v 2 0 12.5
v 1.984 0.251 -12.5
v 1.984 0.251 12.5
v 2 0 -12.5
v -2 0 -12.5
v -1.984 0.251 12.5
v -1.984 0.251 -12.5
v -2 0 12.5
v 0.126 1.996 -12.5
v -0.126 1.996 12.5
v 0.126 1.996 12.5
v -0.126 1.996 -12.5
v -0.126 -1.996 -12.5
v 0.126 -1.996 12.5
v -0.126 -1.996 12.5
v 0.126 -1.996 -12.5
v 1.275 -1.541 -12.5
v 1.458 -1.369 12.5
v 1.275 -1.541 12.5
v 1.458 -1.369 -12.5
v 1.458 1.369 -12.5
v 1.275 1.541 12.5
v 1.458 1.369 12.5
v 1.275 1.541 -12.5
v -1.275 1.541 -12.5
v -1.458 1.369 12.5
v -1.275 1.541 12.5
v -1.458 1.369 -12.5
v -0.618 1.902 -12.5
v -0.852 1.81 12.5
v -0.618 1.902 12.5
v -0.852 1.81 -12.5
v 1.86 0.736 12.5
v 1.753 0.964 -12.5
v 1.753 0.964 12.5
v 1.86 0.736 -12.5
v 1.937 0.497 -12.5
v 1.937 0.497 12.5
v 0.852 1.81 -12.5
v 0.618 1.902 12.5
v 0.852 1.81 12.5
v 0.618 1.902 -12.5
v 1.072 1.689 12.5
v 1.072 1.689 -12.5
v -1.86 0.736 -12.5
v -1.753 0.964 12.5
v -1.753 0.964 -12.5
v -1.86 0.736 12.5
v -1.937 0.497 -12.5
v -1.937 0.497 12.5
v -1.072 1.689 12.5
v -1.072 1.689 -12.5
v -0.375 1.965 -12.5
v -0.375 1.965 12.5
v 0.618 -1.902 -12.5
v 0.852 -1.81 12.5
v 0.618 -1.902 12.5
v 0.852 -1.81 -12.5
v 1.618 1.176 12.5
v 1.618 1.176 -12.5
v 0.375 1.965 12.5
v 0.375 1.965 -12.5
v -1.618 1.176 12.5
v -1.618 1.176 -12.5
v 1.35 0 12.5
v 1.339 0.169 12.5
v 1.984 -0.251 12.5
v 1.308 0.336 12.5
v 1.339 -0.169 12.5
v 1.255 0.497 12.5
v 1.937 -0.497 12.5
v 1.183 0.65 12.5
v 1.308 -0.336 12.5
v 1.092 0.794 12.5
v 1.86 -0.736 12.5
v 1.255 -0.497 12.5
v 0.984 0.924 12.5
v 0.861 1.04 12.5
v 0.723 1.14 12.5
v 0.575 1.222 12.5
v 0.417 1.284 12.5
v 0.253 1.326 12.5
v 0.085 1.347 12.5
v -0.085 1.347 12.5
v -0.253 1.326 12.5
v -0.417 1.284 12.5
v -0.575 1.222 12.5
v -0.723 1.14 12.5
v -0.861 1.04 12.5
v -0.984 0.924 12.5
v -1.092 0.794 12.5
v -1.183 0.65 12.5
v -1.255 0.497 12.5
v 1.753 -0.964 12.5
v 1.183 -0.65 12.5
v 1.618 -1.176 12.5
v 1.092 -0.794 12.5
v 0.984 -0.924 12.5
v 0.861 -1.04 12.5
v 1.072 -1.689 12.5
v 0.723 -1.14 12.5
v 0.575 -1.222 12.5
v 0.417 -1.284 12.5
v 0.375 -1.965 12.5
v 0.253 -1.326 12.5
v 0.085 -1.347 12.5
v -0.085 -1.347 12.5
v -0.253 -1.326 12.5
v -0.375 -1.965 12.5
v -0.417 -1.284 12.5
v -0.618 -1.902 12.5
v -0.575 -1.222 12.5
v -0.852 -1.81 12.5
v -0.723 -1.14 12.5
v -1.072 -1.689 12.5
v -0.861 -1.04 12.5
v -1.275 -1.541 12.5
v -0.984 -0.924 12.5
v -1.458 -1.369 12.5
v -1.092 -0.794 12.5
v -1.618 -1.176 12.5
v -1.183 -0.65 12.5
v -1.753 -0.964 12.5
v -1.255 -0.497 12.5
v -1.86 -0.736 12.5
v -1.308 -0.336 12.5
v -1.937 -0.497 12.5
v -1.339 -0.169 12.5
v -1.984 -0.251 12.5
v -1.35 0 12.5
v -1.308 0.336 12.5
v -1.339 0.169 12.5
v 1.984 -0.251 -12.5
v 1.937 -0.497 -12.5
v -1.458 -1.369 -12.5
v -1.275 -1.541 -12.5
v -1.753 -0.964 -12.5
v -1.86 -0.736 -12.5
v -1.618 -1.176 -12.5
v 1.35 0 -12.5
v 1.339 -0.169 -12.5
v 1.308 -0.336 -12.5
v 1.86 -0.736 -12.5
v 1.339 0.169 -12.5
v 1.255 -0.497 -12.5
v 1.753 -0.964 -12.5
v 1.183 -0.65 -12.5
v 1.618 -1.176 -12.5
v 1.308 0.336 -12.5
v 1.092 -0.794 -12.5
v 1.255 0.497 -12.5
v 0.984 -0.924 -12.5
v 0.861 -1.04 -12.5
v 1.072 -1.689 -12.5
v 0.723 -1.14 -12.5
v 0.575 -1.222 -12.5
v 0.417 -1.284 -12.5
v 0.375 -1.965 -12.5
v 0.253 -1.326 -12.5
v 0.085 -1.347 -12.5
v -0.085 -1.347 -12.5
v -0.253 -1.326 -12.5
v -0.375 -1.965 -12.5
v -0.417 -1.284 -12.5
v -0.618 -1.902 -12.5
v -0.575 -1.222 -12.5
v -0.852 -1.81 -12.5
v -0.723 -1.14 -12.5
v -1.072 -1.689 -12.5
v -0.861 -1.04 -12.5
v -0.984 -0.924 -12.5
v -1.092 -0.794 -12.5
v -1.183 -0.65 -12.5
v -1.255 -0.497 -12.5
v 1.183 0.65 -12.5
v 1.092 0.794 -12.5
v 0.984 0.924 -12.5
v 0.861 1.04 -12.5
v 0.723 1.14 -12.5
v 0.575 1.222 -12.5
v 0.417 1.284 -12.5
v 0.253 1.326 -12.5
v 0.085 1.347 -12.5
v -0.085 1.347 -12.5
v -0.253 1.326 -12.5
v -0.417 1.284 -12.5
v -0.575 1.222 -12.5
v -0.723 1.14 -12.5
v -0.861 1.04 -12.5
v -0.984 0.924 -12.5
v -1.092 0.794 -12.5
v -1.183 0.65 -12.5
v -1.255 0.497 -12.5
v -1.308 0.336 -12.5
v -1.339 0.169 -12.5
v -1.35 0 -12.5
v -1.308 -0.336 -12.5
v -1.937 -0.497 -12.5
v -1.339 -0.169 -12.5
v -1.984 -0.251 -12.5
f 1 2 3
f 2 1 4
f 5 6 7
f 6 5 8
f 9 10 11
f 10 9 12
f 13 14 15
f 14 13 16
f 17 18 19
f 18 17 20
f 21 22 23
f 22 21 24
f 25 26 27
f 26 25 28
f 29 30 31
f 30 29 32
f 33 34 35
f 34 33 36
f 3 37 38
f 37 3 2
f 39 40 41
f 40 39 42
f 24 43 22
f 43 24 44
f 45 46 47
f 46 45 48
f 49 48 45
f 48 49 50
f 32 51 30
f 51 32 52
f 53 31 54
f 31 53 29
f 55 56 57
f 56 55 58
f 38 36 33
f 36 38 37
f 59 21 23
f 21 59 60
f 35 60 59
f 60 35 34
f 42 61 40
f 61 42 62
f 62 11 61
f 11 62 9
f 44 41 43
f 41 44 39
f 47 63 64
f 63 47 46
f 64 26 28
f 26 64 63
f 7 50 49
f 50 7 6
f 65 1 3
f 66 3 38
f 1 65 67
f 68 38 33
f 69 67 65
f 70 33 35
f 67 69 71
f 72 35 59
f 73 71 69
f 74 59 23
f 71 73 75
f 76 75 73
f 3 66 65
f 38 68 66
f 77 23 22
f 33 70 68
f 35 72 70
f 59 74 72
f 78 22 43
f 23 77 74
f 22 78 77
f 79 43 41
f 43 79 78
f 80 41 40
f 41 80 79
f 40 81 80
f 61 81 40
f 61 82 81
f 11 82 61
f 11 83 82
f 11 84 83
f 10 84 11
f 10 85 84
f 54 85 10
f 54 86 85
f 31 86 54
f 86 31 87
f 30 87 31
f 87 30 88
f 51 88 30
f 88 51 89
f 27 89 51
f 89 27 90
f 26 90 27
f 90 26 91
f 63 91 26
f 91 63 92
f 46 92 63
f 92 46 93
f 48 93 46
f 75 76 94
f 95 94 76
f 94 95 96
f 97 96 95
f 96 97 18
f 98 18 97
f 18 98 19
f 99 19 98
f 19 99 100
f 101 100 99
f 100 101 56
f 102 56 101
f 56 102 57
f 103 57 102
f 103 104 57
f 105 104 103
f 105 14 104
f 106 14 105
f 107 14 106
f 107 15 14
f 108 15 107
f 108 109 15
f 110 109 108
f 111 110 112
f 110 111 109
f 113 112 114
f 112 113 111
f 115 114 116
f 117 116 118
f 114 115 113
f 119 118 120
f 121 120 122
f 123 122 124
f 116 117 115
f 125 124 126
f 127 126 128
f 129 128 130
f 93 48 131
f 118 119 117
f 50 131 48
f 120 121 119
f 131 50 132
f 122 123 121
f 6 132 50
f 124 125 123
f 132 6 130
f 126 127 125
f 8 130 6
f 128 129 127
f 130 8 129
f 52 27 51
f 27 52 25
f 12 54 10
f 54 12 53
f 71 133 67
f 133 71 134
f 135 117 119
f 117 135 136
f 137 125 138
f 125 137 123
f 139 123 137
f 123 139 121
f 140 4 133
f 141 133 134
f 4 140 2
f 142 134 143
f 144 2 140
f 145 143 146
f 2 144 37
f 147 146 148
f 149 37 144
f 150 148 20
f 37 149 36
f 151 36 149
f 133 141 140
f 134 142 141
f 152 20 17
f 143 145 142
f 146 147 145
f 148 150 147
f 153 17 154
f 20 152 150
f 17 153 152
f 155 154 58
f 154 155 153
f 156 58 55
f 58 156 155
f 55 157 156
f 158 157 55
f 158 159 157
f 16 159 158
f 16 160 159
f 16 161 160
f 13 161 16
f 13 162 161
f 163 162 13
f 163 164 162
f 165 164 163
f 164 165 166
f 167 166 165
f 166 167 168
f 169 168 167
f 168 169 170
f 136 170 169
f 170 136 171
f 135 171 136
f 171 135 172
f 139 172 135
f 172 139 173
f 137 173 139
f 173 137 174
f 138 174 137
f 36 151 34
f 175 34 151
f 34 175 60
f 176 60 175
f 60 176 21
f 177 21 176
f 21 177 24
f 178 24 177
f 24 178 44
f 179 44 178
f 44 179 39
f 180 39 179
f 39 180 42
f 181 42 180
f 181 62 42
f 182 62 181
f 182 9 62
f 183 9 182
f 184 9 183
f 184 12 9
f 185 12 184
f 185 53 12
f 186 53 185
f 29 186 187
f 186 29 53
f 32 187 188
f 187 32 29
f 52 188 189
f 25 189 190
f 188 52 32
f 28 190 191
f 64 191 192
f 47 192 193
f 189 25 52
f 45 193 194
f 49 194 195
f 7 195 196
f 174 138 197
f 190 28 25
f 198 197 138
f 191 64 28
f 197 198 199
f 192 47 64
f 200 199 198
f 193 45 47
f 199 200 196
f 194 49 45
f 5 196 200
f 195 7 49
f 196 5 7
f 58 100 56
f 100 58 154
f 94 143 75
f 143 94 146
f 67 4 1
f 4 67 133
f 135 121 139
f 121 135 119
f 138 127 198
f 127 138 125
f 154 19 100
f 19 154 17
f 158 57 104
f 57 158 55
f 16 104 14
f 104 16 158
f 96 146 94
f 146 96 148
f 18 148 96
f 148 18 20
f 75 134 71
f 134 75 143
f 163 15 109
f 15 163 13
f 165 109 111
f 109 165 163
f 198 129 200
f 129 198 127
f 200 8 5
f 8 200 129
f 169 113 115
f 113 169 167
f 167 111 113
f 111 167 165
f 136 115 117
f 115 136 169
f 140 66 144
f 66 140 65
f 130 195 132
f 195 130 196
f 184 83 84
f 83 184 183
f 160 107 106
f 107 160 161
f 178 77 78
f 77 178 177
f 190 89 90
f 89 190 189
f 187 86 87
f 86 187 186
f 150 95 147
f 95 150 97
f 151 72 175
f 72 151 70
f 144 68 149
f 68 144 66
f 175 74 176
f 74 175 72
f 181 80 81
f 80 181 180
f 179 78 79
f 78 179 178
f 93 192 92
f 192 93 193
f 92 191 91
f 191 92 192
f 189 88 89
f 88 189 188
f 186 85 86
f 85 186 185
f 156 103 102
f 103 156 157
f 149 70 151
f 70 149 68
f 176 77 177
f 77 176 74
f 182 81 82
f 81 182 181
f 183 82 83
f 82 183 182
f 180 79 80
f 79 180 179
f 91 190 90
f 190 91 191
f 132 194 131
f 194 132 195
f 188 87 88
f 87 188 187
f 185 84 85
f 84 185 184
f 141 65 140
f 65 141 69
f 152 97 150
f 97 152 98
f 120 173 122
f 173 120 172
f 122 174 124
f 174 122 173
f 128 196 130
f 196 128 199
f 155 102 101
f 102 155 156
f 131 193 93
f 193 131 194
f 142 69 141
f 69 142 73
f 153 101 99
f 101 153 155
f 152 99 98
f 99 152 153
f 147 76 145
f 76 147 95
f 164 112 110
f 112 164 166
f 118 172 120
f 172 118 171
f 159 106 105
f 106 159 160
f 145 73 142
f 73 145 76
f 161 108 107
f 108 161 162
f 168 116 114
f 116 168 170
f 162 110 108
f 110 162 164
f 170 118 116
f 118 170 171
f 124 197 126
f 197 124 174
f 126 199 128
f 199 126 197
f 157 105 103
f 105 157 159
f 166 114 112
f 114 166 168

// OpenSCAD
$fn = 50;


difference() {
	union() {
		translate(v = [0, 0, -12.5000000000]) {
			cylinder(h = 25, r = 2.0000000000);
		}
	}
	union() {
		translate(v = [0, 0, -100.0000000000]) {
			cylinder(h = 200, r = 1.3500000000);
		}
	}
}
